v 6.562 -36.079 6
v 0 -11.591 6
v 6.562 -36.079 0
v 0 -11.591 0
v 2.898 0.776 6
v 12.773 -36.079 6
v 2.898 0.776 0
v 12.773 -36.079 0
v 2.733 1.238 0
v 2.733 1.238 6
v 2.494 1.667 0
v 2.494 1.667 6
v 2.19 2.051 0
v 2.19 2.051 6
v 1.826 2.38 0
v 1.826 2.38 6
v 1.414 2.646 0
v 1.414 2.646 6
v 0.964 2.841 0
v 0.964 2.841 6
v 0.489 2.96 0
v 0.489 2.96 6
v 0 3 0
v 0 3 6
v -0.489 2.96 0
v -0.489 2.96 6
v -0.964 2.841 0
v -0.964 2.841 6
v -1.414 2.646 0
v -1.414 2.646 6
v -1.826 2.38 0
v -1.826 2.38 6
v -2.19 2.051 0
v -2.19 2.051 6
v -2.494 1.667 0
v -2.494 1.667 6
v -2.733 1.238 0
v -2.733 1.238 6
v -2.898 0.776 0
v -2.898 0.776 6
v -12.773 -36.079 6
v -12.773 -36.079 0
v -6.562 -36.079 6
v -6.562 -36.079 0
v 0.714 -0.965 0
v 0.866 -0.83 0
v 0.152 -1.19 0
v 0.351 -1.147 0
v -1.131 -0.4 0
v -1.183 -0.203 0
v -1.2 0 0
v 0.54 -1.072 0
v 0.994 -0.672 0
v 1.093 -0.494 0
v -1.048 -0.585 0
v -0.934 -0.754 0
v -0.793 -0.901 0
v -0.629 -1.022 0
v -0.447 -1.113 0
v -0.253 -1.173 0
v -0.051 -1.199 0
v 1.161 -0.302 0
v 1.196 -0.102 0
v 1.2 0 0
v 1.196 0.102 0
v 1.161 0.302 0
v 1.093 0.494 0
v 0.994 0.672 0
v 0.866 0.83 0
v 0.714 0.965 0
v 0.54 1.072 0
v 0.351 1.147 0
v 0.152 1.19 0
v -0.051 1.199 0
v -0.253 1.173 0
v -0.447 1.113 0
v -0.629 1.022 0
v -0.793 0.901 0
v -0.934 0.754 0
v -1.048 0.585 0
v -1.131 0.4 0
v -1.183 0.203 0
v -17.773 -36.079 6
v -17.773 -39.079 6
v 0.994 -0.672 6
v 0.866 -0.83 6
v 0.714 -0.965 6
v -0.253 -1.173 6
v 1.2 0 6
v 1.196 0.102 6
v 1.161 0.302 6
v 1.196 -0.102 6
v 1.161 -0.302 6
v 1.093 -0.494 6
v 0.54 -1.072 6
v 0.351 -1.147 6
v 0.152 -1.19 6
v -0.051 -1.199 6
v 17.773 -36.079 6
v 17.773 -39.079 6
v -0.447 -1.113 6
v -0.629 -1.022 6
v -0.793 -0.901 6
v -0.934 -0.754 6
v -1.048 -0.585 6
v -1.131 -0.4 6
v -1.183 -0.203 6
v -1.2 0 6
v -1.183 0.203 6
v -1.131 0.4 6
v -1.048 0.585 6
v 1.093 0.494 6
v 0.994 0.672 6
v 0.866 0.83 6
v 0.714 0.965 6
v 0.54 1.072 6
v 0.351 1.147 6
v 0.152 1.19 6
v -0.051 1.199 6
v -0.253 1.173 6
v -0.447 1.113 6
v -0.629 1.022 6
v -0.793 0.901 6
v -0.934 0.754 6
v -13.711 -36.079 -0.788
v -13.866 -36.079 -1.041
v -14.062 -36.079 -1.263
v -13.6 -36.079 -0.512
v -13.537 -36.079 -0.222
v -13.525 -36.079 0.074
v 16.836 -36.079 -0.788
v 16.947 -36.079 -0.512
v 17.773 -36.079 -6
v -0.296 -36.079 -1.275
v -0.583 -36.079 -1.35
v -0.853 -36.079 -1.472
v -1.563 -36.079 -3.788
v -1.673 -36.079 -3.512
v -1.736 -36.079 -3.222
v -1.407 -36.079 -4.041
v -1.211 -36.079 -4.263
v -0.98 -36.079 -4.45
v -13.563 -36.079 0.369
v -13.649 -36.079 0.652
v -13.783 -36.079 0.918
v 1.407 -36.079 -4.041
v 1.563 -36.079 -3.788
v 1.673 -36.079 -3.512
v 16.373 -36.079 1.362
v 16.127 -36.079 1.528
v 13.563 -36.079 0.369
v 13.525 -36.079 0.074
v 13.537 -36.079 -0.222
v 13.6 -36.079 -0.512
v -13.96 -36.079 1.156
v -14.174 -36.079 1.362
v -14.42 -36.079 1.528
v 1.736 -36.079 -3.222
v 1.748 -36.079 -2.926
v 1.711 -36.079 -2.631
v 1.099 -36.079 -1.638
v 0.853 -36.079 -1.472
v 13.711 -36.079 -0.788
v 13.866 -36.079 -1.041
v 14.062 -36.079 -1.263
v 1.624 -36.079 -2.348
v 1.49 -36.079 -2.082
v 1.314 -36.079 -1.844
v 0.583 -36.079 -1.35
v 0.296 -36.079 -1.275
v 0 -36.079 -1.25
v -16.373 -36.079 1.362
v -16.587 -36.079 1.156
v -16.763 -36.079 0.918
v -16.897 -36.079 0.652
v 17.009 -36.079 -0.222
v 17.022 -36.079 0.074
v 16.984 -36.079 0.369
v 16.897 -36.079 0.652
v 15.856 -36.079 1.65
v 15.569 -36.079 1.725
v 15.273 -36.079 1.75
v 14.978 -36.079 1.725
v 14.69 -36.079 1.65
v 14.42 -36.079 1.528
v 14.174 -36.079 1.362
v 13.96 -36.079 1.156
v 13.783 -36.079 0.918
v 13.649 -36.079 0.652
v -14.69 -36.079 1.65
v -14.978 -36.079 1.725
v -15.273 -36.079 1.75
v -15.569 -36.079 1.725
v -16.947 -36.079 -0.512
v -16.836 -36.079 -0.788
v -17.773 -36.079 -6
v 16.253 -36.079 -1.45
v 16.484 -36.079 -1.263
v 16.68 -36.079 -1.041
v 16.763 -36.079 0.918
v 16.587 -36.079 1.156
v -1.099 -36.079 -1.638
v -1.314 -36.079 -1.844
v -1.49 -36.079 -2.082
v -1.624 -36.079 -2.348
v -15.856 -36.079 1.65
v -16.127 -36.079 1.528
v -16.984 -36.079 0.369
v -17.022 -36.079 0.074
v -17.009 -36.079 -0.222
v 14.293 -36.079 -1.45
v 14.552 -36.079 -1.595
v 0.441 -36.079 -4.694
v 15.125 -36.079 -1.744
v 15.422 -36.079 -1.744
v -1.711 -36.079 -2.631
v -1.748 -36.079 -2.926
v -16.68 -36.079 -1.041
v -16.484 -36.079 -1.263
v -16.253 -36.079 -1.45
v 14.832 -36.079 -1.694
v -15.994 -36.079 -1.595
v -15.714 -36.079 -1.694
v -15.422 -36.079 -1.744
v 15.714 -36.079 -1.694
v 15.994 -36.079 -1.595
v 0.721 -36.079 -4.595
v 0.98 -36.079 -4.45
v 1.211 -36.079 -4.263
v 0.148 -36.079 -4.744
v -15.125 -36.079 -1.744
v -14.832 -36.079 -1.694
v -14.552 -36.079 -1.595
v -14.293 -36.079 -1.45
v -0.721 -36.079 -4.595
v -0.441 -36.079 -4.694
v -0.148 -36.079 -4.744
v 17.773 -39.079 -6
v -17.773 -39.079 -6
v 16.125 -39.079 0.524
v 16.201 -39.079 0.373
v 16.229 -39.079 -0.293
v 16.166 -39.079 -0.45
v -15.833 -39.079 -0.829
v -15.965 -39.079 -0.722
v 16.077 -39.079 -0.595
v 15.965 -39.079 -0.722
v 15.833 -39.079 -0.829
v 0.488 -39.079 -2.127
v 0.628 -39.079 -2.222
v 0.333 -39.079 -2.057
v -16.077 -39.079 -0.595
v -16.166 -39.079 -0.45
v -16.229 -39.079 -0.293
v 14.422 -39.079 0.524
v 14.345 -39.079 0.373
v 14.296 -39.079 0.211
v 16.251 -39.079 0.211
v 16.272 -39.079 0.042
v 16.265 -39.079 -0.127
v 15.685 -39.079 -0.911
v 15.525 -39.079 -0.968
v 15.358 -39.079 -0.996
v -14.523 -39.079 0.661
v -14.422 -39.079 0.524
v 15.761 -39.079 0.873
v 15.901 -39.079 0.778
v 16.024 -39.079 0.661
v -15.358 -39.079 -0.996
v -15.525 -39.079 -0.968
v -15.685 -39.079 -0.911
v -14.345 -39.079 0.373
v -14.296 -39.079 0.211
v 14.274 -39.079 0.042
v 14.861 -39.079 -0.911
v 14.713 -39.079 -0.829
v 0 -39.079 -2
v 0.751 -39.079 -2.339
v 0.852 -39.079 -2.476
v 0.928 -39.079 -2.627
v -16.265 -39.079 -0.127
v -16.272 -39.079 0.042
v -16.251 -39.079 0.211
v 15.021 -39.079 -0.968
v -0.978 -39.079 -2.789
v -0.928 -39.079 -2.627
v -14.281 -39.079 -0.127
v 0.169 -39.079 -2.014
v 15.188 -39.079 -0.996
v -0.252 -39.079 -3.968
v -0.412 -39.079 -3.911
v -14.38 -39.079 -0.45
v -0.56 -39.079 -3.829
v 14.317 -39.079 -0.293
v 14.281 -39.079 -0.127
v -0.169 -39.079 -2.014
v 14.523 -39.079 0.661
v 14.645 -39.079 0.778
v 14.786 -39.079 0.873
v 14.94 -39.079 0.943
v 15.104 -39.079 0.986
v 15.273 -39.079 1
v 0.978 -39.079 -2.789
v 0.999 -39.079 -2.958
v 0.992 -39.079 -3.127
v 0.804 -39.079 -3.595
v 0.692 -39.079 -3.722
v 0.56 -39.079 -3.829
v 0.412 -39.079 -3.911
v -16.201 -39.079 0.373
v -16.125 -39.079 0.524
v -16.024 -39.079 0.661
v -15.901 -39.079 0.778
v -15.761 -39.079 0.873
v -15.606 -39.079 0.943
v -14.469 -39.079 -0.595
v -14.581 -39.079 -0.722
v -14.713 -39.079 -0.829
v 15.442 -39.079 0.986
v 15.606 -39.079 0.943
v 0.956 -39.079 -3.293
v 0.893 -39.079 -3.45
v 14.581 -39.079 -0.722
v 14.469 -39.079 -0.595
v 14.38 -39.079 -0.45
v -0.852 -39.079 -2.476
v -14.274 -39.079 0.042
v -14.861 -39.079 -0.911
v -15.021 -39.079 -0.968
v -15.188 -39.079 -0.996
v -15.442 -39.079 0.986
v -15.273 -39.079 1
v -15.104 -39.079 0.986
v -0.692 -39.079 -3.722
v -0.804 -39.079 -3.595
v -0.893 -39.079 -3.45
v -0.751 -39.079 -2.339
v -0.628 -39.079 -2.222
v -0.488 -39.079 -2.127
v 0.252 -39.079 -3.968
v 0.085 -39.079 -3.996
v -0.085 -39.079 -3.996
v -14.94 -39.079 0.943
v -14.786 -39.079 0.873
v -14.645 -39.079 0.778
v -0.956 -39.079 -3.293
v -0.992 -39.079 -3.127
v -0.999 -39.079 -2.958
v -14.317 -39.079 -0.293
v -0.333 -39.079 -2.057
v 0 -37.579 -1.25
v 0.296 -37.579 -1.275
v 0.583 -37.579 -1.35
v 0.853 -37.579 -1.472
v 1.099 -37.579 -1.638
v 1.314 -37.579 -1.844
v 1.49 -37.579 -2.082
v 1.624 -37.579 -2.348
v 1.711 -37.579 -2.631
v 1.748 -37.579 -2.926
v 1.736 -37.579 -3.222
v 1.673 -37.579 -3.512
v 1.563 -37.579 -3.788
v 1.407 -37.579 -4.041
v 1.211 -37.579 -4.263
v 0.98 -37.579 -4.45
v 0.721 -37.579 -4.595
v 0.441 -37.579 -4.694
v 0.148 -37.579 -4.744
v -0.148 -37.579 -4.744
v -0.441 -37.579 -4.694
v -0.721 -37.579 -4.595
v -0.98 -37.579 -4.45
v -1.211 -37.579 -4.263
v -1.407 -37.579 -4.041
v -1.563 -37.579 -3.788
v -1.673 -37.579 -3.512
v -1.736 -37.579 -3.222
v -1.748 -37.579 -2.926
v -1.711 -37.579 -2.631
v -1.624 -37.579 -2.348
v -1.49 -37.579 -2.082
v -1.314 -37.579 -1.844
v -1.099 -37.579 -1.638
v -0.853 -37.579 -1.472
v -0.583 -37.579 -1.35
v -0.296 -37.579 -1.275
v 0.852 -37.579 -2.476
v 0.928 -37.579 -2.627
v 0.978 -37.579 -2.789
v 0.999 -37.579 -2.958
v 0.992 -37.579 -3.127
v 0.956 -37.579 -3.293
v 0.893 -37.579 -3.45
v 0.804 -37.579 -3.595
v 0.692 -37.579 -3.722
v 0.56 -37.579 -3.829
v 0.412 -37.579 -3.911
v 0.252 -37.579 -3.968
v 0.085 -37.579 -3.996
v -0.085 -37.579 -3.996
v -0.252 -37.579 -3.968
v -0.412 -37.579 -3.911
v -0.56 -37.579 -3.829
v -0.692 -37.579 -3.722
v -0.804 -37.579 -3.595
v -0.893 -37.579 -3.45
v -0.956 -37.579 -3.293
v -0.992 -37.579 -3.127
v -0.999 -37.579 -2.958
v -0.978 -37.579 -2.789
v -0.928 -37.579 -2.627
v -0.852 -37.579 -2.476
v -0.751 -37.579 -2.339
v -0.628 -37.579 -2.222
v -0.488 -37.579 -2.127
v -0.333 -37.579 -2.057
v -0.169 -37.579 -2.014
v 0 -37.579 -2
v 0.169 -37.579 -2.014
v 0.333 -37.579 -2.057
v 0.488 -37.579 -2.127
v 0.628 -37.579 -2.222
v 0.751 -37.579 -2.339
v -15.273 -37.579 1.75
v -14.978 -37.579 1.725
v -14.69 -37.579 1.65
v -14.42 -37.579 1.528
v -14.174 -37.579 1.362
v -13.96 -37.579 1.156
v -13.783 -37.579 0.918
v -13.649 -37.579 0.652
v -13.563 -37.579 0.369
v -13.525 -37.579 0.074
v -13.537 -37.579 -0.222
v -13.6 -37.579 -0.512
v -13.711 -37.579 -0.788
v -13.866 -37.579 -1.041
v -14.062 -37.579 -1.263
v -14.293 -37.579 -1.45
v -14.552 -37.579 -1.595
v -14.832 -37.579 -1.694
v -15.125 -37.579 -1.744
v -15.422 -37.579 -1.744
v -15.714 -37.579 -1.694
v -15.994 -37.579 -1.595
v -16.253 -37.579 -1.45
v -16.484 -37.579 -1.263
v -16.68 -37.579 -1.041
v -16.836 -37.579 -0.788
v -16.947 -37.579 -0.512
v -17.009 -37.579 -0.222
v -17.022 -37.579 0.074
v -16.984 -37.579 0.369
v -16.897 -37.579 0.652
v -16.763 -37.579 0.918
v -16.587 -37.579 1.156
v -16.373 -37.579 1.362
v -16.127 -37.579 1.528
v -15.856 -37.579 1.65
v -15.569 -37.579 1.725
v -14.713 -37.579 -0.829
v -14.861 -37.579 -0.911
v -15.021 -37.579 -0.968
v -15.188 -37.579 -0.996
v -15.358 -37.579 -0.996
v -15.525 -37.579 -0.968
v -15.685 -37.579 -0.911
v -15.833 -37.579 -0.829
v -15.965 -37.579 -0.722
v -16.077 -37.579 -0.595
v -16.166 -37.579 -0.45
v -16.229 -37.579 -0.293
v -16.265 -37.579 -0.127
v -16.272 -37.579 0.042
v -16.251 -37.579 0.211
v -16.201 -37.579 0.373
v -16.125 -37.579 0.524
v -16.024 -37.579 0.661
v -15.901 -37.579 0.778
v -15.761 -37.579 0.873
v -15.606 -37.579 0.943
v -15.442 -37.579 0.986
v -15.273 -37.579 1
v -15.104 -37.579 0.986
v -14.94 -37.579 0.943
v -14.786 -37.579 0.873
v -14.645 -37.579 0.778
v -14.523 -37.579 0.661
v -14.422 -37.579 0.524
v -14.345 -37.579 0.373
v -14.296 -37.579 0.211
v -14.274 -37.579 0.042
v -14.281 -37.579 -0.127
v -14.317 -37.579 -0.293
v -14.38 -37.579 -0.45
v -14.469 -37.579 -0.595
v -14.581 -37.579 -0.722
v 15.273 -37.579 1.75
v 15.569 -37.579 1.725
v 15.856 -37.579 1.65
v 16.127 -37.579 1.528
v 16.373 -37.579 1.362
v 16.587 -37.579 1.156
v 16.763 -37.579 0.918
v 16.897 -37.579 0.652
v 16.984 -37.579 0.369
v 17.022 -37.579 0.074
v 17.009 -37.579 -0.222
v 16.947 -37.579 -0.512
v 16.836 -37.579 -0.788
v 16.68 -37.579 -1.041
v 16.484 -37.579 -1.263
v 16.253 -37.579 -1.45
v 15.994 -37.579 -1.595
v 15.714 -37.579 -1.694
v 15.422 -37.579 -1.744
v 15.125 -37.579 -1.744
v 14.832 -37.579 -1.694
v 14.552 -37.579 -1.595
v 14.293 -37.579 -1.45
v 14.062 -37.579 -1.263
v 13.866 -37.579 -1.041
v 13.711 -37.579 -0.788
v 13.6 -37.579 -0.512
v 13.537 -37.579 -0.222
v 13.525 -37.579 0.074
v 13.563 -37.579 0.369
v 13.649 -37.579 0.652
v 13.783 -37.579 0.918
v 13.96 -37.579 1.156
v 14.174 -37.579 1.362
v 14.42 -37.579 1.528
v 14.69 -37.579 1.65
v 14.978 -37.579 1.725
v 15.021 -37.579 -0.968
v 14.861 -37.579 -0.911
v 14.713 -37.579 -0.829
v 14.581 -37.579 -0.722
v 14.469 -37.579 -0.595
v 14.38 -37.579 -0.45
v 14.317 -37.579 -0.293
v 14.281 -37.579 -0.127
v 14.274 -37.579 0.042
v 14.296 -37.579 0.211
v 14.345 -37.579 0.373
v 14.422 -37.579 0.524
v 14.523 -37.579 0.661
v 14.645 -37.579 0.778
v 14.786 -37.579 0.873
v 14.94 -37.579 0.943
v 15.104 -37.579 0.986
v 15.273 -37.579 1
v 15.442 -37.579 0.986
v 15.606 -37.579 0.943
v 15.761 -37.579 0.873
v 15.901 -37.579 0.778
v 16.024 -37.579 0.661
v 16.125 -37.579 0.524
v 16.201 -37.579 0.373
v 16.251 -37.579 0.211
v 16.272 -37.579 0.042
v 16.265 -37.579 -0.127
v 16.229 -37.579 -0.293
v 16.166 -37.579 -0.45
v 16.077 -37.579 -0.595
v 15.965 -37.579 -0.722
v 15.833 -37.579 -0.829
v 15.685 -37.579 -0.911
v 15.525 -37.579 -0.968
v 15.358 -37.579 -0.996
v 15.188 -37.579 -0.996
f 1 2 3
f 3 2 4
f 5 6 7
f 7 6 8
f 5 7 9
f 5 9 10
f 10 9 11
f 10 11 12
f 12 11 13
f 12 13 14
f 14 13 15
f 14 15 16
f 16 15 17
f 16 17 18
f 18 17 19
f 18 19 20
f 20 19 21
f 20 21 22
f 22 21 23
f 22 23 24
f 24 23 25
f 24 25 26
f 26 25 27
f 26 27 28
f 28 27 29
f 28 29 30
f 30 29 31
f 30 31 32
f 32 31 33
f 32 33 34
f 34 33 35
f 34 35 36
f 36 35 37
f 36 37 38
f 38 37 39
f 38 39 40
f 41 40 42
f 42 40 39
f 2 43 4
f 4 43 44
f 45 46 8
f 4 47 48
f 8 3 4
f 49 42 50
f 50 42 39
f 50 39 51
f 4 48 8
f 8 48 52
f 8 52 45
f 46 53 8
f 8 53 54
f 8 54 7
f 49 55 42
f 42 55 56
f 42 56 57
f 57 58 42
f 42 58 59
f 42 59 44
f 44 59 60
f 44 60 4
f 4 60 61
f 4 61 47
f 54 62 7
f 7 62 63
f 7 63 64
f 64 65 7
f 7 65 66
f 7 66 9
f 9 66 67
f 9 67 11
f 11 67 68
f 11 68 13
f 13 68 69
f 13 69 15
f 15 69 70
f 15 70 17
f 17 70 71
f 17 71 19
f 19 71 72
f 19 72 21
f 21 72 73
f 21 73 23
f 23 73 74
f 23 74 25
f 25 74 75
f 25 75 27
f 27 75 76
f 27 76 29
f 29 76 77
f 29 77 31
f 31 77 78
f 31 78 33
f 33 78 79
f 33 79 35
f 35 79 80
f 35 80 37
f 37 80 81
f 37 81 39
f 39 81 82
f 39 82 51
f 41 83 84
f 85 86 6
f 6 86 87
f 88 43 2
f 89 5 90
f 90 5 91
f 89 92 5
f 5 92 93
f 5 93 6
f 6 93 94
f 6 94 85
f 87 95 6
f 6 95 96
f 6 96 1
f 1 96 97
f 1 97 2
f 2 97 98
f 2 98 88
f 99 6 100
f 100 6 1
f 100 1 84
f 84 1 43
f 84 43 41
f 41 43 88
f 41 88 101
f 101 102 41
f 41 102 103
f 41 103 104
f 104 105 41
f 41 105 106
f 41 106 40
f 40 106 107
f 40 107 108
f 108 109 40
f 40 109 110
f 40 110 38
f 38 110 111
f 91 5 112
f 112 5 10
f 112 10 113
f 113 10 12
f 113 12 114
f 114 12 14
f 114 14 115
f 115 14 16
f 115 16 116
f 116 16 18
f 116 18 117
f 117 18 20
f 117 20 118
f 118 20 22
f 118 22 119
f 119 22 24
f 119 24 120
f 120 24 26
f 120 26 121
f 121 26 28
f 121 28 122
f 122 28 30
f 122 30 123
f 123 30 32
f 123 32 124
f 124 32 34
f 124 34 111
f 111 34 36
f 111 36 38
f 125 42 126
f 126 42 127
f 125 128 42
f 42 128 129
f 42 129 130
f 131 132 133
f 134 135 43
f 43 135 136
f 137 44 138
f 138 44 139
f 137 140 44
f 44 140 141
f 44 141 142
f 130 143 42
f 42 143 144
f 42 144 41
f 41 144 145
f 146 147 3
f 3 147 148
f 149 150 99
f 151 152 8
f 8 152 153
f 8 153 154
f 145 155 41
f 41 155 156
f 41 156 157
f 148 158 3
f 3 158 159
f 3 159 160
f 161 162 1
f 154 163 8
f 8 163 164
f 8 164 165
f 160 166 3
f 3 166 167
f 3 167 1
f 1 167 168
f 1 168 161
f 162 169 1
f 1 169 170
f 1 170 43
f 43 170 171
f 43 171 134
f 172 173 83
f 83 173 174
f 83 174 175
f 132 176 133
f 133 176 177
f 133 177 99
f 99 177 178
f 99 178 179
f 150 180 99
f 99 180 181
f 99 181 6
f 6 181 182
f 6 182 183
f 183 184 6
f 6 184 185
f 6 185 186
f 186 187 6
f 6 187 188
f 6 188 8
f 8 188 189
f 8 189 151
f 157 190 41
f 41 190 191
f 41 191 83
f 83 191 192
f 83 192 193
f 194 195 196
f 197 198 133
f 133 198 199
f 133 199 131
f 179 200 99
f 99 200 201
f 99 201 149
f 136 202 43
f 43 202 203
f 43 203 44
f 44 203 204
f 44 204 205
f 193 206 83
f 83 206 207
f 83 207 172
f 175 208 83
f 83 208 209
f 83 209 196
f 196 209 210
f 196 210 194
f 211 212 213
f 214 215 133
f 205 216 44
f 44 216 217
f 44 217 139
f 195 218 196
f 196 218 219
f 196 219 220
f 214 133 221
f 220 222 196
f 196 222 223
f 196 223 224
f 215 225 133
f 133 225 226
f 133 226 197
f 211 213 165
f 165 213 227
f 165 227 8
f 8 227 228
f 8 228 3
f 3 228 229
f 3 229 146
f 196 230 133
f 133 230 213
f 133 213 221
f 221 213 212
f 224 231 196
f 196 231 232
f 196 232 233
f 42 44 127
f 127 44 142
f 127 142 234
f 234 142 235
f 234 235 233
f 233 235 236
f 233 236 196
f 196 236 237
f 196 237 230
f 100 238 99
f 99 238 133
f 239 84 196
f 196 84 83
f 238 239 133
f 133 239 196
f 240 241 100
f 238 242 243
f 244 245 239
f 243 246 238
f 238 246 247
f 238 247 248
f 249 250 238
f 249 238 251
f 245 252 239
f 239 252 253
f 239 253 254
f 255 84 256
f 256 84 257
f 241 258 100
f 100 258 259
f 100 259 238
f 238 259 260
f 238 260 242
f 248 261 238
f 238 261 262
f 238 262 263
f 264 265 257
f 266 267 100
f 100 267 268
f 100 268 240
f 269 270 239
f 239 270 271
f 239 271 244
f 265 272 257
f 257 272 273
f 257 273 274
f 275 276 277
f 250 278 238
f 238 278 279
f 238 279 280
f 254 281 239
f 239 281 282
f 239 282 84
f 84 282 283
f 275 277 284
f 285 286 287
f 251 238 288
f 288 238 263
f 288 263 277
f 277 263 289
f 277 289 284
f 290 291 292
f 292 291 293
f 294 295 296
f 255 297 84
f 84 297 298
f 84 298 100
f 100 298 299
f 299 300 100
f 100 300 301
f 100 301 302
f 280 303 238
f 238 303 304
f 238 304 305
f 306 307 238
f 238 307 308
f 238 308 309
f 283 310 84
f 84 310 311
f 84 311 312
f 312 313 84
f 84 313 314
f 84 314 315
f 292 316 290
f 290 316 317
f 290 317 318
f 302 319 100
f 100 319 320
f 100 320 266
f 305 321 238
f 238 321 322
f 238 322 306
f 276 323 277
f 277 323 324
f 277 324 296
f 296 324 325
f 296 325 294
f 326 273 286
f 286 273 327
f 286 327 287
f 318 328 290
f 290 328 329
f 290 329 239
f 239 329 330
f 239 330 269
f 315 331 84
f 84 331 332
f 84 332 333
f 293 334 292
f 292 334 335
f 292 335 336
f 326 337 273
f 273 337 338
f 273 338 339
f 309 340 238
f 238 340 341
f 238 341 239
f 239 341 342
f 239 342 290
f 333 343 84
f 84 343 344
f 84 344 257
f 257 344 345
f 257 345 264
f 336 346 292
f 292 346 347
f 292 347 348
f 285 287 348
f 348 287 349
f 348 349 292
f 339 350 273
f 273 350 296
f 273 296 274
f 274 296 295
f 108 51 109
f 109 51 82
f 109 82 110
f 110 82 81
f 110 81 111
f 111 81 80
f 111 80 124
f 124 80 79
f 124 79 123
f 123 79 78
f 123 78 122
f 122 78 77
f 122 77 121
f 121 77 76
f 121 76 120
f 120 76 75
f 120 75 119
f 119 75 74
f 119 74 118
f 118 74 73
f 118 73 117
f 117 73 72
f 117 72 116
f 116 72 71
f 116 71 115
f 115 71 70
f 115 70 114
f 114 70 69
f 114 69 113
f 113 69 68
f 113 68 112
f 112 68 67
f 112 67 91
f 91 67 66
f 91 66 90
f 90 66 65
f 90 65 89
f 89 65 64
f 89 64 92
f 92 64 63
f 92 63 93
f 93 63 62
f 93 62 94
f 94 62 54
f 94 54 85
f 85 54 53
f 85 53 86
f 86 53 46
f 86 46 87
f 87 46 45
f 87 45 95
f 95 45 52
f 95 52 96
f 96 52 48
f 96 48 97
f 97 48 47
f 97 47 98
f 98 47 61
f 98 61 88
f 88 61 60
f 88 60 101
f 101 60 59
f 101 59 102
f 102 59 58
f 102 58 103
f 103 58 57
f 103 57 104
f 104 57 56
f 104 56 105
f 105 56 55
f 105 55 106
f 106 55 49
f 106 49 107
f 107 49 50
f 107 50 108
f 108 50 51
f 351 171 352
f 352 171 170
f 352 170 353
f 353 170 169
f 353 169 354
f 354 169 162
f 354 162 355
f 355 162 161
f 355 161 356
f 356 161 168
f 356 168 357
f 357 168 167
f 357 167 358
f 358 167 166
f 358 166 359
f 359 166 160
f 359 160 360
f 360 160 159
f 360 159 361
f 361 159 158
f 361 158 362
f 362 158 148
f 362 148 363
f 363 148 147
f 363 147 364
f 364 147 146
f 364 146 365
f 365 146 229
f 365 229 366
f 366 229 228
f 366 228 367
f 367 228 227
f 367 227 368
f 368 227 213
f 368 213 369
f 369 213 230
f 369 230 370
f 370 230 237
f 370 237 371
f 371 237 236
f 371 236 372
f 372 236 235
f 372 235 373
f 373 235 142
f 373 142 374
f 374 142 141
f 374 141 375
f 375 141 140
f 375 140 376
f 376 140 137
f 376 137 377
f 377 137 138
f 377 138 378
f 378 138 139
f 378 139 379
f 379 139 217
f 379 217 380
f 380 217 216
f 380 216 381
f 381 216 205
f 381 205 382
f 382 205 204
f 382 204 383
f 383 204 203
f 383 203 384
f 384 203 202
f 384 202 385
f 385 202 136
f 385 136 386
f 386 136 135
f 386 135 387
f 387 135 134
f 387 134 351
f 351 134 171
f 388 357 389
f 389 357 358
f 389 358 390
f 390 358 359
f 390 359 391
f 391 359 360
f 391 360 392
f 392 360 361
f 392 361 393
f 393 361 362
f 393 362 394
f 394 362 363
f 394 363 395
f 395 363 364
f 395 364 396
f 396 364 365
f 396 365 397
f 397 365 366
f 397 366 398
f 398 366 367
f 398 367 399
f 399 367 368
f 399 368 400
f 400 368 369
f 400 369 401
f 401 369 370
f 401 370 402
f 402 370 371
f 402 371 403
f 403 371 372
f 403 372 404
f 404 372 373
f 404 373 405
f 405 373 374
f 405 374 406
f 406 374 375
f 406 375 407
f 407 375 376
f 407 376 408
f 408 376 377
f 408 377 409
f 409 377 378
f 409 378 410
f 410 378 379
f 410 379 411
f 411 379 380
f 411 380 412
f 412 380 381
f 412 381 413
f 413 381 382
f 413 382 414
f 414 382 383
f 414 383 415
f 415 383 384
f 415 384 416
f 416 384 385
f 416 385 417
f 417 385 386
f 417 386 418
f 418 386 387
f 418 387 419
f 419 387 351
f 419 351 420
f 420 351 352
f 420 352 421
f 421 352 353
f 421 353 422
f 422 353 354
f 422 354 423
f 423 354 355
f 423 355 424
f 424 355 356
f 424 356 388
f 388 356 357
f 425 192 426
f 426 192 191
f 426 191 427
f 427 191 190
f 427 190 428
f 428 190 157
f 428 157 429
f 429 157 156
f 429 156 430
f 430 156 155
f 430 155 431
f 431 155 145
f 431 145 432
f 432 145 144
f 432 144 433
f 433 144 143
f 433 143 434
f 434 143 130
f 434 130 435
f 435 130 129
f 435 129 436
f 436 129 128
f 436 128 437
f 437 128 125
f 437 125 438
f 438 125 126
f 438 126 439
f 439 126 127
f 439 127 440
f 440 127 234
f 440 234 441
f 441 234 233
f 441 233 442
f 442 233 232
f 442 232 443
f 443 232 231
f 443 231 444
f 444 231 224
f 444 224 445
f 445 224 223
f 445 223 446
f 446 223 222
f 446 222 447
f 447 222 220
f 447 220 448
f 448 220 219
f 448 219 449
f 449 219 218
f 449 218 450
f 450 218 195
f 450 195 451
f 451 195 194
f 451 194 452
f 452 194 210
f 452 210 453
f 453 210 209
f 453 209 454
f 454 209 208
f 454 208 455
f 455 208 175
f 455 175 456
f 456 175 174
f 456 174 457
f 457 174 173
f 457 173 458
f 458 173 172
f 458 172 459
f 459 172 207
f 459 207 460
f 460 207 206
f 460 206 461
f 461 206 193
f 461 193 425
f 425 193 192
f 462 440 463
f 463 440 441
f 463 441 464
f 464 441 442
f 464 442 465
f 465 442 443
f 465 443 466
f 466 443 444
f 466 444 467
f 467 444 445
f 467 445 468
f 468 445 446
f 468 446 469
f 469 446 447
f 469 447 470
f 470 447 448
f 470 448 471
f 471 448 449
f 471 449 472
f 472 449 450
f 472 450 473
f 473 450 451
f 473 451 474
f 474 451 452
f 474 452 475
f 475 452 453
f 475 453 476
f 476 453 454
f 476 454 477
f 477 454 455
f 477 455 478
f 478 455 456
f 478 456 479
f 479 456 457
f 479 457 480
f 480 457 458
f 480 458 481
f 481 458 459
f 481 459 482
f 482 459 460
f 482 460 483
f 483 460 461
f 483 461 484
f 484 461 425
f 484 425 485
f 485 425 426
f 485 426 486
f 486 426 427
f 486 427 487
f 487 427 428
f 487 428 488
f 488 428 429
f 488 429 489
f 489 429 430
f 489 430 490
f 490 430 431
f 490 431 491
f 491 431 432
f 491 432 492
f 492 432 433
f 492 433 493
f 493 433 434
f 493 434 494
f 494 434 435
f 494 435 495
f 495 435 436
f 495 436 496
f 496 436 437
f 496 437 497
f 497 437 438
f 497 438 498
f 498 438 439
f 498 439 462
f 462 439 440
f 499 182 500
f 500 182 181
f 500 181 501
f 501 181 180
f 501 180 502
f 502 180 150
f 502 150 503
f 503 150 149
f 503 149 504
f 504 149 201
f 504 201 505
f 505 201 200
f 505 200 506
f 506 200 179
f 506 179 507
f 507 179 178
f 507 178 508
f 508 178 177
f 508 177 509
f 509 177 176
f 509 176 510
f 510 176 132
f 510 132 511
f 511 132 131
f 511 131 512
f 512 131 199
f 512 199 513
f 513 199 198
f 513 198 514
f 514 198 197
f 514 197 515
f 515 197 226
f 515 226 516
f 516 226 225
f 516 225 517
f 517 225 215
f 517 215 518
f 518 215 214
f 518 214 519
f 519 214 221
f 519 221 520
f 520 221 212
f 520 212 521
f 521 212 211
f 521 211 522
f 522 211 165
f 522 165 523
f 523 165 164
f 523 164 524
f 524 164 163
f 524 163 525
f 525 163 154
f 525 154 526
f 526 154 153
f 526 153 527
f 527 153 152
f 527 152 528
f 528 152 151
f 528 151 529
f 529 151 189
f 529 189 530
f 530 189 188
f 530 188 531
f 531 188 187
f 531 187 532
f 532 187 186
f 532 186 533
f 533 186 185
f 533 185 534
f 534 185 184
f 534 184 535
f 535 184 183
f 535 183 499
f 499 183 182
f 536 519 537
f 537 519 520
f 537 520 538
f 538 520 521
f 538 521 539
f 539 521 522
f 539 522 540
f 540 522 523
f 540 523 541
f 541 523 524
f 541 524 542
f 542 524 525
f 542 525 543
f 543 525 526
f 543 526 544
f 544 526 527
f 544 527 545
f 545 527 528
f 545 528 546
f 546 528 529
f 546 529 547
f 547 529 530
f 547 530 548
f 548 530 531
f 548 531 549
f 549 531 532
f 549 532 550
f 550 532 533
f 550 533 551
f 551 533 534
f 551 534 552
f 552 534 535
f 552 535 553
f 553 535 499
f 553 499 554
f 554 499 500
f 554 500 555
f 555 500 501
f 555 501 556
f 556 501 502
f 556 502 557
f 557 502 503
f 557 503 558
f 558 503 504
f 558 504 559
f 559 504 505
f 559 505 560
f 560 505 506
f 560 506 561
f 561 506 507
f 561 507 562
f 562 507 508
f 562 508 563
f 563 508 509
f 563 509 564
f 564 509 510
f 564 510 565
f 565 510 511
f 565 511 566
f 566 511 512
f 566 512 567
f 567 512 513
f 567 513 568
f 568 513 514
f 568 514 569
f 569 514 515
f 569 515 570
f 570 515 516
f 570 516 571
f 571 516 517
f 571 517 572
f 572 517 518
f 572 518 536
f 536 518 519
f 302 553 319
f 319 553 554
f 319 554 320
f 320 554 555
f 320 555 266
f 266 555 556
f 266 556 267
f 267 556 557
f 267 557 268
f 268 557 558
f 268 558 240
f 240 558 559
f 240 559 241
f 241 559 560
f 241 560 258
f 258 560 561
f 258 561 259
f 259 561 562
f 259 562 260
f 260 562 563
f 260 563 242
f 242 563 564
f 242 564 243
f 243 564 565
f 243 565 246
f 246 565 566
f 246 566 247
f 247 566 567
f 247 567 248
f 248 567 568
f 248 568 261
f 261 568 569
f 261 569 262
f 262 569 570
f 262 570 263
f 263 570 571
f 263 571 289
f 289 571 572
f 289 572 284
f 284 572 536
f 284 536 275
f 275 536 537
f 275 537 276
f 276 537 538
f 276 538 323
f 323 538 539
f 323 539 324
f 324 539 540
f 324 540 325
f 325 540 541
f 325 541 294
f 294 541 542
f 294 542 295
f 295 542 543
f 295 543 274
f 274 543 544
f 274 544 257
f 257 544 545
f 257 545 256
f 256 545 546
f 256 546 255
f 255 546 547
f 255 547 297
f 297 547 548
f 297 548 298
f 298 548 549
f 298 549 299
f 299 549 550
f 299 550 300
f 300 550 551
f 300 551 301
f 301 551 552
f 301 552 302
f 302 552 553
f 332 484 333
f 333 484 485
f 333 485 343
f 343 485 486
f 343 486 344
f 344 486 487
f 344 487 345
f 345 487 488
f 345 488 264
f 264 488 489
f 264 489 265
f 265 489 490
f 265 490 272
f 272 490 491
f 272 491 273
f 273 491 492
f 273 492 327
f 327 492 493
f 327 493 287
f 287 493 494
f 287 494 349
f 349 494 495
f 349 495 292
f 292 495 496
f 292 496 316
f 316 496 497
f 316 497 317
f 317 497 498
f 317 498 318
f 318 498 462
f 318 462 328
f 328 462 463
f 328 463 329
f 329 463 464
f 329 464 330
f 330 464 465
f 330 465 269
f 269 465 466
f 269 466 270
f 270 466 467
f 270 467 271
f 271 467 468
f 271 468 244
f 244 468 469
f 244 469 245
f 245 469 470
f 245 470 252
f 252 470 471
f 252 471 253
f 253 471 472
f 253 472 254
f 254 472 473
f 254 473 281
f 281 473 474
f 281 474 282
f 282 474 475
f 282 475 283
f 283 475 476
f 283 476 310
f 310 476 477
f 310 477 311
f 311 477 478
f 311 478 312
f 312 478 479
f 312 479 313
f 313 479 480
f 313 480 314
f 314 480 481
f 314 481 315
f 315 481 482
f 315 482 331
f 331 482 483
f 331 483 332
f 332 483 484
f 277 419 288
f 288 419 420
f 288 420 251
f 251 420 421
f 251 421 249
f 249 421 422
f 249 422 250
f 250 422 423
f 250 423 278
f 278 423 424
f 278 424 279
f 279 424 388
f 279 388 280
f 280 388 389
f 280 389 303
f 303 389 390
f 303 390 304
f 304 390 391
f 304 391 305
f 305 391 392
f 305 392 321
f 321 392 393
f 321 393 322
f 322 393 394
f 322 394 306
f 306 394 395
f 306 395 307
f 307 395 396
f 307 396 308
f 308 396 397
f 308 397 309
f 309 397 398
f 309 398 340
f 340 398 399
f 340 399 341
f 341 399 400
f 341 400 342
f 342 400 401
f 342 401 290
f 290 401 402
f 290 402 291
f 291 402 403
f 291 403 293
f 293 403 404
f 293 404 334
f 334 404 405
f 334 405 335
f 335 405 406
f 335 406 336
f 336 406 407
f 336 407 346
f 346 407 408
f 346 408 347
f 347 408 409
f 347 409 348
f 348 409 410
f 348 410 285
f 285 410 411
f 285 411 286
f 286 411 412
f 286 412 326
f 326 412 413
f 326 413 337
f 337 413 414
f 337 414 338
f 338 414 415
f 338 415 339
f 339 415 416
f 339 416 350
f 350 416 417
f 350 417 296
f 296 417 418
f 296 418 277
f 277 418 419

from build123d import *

# Parameters (mm, degrees)
EXTRUDE_1_DEPTH     = 6
SKETCH_3_W          = 35.546514436
SKETCH_3_H          = 12
EXTRUDE_2_DEPTH     = 3
SKETCH_1_5_R        = 1.2
CUT_EXTRUDE_1_DEPTH = 44.348392083
SKETCH_4_R          = 1.75
SKETCH_4_R_2        = 1
CUT_EXTRUDE_2_DEPTH = 1.5
SKETCH_4_2_R        = 1
CUT_EXTRUDE_3_DEPTH = 44.348392083


with BuildPart() as part:
    # 草图1 → 凸台-拉伸1 (new body)
    with BuildSketch(Plane.XY):
        with BuildLine():
            ThreePointArc((2.897777479, 0.776457135), (0, 3), (-2.897777479, 0.776457135))
            Line((-2.897777479, 0.776457135), (-12.773257218, -36.079335))
            Line((-12.773257218, -36.079335), (-6.561600135, -36.079335))
            Line((-6.561600135, -36.079335), (0, -11.591109915))
            Line((0, -11.591109915), (6.561600135, -36.079335))
            Line((6.561600135, -36.079335), (12.773257218, -36.079335))
            Line((12.773257218, -36.079335), (2.897777479, 0.776457135))
        make_face()
    extrude(amount=EXTRUDE_1_DEPTH)

    # 草图3 → 凸台-拉伸2 (add)
    with BuildSketch(Plane.XZ.offset(36.079335)):
        Rectangle(SKETCH_3_W, SKETCH_3_H)
    extrude(amount=EXTRUDE_2_DEPTH)

    # 草图1<5> → 切除-拉伸1 (cut, through all)
    with BuildSketch(Plane.XY):
        Circle(SKETCH_1_5_R)
    extrude(amount=CUT_EXTRUDE_1_DEPTH, mode=Mode.SUBTRACT)

    # 草图4 → 切除-拉伸2 (cut)
    # profile 1 of 3: a face of its own
    with BuildSketch(Plane(origin=(0, -36.079335, 0), x_dir=(1, 0, 0), z_dir=(0, 1, 0))):
        with Locations((15.273257218, 0)):
            Circle(SKETCH_4_R)
        with Locations((15.273257218, 0)):
            Circle(SKETCH_4_R_2, mode=Mode.SUBTRACT)
    # profile 2 of 3: a face of its own
    with BuildSketch(Plane(origin=(0, -36.079335, 0), x_dir=(1, 0, 0), z_dir=(0, 1, 0))):
        with Locations((-15.273257218, 0)):
            Circle(SKETCH_4_R)
        with Locations((-15.273257218, 0)):
            Circle(SKETCH_4_R_2, mode=Mode.SUBTRACT)
    # profile 3 of 3: a face of its own
    with BuildSketch(Plane(origin=(0, -36.079335, 0), x_dir=(1, 0, 0), z_dir=(0, 1, 0))):
        with Locations((0, 3)):
            Circle(SKETCH_4_R)
        with Locations((0, 3)):
            Circle(SKETCH_4_R_2, mode=Mode.SUBTRACT)
    extrude(amount=-CUT_EXTRUDE_2_DEPTH, mode=Mode.SUBTRACT)

    # 草图4<2> → 切除-拉伸3 (cut, through all)
    with BuildSketch(Plane(origin=(0, -36.079335, 0), x_dir=(1, 0, 0), z_dir=(0, 1, 0))):
        with Locations((15.273257218, 0)):
            Circle(SKETCH_4_2_R)
        with Locations((0, 3)):
            Circle(SKETCH_4_2_R)
        with Locations((-15.273257218, 0)):
            Circle(SKETCH_4_2_R)
    extrude(amount=-CUT_EXTRUDE_3_DEPTH, mode=Mode.SUBTRACT)


solid = part.part
